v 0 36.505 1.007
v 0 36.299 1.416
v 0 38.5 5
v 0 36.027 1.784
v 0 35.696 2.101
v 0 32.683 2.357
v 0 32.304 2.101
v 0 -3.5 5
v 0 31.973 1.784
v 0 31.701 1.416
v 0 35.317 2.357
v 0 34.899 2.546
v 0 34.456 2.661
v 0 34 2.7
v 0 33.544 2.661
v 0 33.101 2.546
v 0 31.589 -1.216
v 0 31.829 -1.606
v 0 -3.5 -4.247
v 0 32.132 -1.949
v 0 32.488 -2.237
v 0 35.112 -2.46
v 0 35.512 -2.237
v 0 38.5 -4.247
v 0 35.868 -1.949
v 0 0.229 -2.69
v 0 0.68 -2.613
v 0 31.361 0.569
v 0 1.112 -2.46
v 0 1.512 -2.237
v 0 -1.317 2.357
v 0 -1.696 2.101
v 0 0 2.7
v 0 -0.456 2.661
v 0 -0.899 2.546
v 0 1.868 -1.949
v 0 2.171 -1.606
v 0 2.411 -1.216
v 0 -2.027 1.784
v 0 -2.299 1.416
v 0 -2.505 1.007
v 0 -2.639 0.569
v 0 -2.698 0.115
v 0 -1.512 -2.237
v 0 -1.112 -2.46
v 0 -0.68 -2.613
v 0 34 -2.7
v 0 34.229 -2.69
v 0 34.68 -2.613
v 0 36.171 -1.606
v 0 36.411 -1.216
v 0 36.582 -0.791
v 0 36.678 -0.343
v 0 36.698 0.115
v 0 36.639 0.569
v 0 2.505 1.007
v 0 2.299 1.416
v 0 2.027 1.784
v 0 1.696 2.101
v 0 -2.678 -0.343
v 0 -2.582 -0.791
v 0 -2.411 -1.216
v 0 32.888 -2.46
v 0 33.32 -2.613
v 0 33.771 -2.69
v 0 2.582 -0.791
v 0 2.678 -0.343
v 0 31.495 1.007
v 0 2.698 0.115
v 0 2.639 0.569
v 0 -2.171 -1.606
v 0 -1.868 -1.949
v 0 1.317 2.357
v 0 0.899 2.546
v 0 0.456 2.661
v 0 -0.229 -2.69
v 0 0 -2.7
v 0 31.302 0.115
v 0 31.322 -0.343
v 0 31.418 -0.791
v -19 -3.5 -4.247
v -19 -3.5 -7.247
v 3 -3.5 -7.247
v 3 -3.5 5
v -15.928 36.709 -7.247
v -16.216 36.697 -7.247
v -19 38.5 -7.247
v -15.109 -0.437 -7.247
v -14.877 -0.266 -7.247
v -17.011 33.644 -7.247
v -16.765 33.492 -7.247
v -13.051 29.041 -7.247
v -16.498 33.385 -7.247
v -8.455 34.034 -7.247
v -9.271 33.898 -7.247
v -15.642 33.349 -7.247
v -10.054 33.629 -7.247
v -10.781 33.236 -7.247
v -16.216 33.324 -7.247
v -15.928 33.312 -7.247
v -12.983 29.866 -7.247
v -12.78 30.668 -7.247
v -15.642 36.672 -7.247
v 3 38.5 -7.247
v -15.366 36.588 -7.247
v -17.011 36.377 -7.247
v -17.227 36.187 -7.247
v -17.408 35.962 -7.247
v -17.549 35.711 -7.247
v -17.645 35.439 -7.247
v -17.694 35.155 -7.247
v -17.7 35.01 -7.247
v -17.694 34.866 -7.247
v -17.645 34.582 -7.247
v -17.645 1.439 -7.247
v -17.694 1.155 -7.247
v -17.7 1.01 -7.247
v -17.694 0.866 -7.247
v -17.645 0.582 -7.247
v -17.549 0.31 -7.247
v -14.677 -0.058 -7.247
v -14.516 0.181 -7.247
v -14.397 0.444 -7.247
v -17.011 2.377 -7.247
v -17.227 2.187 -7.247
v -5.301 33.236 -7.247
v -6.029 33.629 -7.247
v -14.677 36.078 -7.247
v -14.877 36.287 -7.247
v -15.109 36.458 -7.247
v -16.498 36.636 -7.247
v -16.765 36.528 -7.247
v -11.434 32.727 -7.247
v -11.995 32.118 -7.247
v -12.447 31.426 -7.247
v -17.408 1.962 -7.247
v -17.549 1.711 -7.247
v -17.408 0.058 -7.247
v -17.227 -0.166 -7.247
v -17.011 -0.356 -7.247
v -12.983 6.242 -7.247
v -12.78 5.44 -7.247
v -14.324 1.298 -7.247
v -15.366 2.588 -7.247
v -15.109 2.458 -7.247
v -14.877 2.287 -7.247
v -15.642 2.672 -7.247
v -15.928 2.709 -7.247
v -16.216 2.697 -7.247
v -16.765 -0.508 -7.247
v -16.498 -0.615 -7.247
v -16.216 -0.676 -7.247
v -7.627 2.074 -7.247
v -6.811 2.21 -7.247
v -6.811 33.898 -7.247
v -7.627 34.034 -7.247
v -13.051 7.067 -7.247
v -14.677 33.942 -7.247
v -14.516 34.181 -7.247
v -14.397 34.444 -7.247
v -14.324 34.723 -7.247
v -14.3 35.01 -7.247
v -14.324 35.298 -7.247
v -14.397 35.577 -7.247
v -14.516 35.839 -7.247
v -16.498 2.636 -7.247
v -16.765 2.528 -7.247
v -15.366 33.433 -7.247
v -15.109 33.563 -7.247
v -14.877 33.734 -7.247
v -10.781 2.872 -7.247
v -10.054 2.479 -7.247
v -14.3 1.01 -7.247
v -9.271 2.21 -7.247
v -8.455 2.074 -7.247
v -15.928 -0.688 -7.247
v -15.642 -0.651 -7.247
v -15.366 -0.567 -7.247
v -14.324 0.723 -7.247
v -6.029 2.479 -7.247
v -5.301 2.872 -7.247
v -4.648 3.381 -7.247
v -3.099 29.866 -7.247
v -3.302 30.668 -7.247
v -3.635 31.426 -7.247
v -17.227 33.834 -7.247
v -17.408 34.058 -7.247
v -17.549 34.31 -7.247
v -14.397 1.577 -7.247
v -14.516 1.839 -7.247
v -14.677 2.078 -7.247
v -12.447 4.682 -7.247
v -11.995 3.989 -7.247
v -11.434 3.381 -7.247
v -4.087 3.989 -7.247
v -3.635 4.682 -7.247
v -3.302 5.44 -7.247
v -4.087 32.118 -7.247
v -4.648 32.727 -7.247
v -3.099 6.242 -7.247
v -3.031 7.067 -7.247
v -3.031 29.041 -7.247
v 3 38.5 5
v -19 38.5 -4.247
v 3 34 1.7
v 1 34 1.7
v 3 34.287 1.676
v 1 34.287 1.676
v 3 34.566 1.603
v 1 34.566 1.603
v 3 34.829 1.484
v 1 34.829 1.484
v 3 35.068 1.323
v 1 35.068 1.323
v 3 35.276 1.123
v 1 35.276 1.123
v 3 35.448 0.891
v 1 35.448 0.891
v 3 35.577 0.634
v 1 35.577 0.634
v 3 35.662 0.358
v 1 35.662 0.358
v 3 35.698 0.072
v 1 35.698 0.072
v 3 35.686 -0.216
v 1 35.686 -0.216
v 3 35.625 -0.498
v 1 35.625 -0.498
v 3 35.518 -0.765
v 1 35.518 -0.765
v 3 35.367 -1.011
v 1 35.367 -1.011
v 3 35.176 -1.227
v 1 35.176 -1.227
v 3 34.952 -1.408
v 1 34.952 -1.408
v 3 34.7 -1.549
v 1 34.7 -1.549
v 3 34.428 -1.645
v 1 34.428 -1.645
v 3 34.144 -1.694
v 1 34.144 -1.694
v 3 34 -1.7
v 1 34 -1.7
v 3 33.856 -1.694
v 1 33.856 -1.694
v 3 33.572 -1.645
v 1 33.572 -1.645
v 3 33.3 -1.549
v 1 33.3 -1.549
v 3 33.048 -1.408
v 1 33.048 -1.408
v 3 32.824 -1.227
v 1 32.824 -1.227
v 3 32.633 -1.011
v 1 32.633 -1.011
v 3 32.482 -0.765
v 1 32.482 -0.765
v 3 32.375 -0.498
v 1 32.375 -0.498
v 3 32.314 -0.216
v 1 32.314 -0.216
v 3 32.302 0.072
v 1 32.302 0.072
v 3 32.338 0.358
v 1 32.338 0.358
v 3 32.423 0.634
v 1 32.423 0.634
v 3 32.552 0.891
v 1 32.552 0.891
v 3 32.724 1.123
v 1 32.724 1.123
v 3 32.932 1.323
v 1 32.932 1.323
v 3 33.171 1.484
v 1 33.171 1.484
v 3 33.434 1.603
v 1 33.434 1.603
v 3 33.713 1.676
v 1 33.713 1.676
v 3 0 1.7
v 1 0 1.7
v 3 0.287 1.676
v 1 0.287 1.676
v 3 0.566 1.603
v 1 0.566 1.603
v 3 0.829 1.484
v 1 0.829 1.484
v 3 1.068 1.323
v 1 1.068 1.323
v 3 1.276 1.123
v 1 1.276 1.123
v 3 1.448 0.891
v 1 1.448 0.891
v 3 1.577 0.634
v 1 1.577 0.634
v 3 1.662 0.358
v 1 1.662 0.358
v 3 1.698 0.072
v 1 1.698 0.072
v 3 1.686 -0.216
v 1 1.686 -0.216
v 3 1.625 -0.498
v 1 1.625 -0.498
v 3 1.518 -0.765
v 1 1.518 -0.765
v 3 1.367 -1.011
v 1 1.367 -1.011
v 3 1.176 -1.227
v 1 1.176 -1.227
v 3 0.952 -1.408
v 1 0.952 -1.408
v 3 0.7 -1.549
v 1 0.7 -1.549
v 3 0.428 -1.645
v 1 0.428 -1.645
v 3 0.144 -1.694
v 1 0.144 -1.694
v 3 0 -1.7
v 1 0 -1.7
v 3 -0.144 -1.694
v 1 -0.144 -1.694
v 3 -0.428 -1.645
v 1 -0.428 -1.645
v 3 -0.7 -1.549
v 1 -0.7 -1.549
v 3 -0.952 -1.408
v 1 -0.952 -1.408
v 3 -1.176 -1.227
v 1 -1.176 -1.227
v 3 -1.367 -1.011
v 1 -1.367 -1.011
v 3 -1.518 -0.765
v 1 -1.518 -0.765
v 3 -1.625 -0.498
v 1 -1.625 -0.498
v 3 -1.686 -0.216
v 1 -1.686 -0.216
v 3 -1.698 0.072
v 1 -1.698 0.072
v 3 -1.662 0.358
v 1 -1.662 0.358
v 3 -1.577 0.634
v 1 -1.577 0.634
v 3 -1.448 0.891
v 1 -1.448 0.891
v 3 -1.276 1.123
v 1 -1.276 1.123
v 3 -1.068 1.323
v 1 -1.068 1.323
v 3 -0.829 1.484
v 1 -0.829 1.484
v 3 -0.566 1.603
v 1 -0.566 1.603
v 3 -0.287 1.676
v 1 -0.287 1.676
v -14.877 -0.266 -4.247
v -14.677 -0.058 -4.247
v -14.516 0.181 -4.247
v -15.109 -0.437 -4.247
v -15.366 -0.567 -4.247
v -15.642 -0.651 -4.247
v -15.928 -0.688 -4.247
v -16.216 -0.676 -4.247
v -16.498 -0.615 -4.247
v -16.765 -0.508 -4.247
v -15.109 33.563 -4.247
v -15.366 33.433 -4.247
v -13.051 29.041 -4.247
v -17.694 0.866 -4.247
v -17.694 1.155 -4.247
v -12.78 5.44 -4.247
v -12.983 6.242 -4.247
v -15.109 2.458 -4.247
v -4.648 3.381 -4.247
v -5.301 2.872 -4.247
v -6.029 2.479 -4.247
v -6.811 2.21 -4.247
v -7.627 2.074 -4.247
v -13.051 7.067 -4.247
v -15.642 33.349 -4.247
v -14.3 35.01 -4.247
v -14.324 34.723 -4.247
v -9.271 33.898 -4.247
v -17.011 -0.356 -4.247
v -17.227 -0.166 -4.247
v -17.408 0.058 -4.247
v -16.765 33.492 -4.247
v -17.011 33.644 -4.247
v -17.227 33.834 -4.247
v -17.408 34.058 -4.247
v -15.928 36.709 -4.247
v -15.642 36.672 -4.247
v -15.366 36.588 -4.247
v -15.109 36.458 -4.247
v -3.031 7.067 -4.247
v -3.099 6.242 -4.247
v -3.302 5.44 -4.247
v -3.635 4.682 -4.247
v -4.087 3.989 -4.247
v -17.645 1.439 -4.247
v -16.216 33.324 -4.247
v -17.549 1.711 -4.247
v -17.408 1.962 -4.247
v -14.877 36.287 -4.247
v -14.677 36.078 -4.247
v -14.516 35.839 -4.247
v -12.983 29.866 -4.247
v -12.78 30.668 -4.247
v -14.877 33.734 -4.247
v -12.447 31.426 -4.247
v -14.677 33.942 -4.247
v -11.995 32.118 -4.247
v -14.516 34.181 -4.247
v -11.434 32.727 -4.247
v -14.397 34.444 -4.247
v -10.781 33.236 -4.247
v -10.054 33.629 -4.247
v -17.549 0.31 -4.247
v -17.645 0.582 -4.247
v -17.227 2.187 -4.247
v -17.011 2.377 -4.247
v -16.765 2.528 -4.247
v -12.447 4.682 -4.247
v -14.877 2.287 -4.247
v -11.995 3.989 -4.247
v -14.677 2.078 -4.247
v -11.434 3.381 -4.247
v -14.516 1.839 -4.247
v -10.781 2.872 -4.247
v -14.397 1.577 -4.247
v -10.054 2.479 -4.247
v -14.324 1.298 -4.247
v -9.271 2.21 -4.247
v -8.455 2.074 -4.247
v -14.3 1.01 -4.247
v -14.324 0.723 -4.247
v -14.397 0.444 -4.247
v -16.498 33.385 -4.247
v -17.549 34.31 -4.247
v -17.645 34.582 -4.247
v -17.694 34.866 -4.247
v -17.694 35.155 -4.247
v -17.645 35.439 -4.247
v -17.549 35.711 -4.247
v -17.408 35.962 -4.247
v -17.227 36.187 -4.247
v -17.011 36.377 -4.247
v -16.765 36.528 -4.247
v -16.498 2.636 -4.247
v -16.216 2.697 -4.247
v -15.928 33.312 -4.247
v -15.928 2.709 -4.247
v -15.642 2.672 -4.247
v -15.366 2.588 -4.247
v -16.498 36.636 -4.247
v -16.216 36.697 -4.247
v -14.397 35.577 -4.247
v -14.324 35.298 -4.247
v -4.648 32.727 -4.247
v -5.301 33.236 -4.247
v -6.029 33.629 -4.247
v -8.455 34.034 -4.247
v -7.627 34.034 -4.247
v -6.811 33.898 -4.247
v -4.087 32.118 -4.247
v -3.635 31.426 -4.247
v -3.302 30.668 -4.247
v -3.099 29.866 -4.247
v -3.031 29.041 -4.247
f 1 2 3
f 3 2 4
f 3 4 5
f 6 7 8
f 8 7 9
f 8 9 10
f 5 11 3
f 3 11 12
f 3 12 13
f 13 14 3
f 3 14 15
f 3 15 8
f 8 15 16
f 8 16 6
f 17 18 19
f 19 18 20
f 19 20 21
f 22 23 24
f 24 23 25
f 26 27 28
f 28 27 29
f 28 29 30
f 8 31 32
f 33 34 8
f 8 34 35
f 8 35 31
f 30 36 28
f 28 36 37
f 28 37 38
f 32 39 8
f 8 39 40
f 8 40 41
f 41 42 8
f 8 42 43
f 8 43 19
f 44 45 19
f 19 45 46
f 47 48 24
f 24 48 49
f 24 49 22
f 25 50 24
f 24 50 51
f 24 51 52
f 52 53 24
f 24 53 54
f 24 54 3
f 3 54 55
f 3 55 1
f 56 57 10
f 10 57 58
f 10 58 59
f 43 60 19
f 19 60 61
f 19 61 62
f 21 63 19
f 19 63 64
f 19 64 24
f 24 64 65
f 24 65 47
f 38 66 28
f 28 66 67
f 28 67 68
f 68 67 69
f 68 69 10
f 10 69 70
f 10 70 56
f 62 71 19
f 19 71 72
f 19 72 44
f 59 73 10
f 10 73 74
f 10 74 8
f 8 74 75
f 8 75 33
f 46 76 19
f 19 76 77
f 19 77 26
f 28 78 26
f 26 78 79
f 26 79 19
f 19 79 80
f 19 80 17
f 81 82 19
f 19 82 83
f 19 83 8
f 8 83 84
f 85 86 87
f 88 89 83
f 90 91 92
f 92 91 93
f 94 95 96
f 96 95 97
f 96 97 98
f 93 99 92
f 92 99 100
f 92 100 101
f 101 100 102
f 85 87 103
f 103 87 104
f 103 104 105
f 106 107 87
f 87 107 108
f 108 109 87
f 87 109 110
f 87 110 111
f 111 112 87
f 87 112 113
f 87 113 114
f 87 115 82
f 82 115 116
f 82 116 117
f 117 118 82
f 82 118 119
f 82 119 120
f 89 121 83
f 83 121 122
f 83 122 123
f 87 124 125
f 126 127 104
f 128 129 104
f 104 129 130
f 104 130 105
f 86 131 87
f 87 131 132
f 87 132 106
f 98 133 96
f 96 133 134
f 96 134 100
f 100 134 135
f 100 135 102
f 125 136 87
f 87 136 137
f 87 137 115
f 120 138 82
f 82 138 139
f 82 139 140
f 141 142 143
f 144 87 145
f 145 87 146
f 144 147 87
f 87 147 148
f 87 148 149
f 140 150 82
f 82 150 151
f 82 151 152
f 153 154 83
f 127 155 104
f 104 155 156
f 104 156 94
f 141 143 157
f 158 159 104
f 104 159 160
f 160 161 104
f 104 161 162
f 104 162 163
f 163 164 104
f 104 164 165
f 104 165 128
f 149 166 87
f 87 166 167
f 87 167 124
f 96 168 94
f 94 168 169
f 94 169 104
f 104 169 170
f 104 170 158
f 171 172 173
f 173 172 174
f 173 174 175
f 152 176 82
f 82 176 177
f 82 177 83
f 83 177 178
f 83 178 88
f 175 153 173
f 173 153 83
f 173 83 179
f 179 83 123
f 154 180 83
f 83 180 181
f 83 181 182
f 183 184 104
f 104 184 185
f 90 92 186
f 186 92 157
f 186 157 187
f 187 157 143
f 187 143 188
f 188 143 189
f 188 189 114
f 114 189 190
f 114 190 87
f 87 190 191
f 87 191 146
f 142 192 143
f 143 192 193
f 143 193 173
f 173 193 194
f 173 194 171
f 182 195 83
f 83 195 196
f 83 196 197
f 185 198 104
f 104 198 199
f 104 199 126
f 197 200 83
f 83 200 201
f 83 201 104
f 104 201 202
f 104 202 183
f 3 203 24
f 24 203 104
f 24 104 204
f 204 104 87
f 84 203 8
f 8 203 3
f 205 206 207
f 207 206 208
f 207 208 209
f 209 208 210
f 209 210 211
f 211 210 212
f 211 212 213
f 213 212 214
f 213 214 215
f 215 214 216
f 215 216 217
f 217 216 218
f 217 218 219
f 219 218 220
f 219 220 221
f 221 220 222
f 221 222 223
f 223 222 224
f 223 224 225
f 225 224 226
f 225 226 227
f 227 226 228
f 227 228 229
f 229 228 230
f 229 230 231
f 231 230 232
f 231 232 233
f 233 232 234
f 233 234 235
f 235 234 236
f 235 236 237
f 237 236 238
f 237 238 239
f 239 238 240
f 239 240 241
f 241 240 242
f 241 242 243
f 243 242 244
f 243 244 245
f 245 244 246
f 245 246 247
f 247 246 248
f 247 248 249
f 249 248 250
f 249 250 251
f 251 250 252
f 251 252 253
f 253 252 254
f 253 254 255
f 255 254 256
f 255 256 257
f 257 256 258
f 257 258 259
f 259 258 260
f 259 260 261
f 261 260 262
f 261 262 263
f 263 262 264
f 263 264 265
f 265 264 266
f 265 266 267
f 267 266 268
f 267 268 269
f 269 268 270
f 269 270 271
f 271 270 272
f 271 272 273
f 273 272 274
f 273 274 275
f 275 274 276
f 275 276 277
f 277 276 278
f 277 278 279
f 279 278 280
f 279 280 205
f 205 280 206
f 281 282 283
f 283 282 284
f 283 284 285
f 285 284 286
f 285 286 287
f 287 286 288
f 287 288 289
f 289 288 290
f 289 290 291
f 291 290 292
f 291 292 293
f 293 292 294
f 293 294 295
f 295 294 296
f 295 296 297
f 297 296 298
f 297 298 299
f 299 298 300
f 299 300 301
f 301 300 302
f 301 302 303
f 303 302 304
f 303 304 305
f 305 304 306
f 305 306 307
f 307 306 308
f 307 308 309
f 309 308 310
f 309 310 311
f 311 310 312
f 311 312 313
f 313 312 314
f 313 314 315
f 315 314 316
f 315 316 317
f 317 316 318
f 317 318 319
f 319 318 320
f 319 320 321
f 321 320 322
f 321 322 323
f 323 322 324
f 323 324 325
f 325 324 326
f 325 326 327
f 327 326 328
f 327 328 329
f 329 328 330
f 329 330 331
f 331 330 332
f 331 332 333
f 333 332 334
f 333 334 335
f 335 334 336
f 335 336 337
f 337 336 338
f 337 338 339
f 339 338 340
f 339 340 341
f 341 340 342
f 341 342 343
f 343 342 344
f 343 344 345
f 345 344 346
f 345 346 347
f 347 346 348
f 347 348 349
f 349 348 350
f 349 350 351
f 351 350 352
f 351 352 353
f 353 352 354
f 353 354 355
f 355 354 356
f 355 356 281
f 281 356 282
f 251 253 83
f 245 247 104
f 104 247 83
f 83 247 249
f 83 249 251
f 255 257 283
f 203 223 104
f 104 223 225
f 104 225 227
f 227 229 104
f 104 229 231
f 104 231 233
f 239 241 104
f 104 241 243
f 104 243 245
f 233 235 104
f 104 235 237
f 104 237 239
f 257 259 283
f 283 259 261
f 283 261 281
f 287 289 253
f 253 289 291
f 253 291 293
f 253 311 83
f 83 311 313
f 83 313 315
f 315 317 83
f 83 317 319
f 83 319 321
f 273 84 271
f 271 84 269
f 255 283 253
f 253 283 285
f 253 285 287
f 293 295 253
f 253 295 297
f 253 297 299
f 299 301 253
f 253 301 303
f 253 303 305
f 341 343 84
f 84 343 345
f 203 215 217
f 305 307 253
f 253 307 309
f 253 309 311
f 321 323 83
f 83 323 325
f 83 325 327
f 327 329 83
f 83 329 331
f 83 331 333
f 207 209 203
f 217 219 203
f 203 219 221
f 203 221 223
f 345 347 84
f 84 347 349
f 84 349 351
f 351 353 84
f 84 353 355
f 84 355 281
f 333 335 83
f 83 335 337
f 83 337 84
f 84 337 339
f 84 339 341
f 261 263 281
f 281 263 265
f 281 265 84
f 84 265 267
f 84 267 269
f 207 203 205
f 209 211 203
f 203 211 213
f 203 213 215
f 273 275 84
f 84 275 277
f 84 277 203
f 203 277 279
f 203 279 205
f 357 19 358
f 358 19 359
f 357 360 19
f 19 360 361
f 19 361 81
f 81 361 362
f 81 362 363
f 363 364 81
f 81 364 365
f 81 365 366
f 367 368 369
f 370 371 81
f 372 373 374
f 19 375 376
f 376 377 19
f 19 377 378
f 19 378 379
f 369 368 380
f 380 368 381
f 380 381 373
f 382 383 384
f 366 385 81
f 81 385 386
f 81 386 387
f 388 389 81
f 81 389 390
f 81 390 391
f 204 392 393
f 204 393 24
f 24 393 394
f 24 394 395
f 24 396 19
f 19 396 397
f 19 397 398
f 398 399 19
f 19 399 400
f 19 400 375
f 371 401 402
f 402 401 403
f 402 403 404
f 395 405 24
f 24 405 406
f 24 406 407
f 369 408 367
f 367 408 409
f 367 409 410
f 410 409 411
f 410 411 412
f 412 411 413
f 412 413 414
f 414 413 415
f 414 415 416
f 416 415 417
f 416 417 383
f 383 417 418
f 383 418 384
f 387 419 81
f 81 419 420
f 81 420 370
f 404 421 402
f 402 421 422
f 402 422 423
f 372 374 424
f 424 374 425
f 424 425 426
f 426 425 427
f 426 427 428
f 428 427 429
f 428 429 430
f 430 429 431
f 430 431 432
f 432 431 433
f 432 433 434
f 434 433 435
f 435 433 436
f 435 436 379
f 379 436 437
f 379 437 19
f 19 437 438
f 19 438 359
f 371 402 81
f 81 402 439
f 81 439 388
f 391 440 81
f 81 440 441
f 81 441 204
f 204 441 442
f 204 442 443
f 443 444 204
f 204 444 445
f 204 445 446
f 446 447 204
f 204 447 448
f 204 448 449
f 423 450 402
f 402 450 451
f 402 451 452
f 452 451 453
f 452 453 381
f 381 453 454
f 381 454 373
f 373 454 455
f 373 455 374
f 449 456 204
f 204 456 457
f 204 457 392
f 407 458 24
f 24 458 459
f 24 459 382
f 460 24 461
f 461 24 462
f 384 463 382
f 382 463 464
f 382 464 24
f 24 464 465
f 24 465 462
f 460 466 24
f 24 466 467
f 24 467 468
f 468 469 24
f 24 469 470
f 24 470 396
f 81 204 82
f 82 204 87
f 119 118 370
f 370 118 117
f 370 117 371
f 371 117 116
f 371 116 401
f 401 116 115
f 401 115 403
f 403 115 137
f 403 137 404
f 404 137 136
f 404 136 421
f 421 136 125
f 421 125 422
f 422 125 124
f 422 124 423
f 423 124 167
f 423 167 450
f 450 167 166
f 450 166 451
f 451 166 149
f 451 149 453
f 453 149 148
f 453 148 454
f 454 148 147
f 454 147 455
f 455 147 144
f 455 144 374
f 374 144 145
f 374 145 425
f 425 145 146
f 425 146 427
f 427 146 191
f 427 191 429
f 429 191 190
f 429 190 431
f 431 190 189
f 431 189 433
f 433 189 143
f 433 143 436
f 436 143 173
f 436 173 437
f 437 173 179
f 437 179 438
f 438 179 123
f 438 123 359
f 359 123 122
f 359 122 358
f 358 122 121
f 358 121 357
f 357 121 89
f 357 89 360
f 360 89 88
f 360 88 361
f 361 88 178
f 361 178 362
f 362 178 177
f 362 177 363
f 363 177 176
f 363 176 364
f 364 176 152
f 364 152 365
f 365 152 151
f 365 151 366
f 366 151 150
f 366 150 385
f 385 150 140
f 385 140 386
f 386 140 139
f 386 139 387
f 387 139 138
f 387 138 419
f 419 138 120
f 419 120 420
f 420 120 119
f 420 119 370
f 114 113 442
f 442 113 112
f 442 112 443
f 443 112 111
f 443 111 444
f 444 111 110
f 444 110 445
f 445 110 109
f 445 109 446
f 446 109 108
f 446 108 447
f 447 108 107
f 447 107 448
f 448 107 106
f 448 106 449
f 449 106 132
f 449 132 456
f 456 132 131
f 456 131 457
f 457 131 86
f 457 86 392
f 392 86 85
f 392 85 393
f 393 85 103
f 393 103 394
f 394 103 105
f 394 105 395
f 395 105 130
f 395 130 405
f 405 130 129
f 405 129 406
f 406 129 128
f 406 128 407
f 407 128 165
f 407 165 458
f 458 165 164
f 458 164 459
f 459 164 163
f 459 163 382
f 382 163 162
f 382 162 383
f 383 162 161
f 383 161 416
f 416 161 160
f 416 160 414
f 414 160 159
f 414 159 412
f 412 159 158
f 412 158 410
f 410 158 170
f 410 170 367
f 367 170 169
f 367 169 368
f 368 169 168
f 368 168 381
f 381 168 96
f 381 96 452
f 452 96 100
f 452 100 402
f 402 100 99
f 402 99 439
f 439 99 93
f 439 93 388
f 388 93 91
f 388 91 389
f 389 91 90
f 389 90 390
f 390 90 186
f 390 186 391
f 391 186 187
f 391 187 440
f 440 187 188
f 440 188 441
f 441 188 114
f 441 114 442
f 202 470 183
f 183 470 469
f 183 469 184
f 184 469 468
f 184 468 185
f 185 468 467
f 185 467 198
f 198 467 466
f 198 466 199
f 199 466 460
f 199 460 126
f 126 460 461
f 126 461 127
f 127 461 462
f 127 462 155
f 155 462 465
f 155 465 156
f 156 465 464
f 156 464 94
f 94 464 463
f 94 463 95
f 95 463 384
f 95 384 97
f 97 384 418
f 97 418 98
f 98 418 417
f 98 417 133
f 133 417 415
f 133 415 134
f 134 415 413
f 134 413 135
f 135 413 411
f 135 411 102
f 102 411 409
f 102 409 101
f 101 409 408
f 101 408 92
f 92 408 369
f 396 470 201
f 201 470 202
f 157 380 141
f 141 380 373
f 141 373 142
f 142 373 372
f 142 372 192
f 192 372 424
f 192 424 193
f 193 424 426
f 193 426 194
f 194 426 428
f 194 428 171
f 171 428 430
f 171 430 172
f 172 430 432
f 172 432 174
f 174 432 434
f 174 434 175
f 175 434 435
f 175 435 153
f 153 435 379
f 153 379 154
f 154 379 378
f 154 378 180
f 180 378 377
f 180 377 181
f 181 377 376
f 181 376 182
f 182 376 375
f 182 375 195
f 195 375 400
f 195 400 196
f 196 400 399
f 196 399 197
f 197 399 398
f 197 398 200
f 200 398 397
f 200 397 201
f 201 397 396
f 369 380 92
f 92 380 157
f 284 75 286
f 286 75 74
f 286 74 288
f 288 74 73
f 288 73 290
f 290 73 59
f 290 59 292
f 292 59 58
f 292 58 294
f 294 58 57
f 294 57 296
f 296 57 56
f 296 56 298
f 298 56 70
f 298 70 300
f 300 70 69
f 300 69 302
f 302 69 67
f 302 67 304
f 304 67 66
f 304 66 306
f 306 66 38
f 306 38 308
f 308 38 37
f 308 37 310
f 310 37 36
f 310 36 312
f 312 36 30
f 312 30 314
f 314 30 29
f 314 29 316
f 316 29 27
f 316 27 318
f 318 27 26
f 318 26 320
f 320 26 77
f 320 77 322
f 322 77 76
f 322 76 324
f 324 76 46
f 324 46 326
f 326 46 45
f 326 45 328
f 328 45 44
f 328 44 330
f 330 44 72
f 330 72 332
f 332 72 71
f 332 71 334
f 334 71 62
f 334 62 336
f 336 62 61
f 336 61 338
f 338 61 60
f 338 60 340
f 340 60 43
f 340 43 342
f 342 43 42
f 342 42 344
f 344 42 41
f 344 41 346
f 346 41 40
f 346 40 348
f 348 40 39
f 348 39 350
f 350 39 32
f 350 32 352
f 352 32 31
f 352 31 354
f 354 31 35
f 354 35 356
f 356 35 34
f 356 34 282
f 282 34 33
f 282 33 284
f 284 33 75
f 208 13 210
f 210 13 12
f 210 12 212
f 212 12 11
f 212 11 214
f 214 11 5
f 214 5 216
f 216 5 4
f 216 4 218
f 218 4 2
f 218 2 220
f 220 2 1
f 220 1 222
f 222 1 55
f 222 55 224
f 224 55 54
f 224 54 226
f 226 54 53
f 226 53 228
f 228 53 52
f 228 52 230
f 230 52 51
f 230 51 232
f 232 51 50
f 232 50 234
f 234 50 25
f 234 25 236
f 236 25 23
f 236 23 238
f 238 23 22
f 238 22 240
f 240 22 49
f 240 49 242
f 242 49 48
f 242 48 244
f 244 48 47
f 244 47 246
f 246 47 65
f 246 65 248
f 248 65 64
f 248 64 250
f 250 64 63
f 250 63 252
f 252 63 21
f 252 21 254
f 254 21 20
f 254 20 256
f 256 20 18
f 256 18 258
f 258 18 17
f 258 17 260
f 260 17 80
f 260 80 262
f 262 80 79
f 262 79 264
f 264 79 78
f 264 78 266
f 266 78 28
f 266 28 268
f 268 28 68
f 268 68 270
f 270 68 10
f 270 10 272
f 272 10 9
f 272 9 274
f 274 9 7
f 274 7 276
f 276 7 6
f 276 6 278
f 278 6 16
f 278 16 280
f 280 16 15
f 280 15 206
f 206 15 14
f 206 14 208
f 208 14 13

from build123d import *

# Parameters (mm, degrees)
SKETCH_1_R          = 1.7
EXTRUDE_2_DEPTH     = 3
SKETCH_2_W          = 3
SKETCH_2_H          = 42
EXTRUDE_3_DEPTH     = 19
SKETCH_3_R          = 1.7
CUT_EXTRUDE_1_DEPTH = 5
CUT_EXTRUDE_2_DEPTH = 5
CHAMFER_1_SIZE      = 1


with BuildPart() as part:
    # Эскиз1 → Бобышка-Вытянуть2 (new body)
    with BuildSketch(Plane(origin=(0, 0, 0), x_dir=(0, 0, -1), z_dir=(1, 0, 0))):
        Polygon((0, 38.5), (-5, 38.5), (-5, -3.5), (7.246656809, -3.5), (7.246656809, 38.5), align=None)
        Circle(SKETCH_1_R, mode=Mode.SUBTRACT)
        with BuildLine():
            ThreePointArc((0, 32.3), (-1.7, 34), (0, 35.7))
            ThreePointArc((0, 35.7), (1.7, 34), (0, 32.3))
        make_face(mode=Mode.SUBTRACT)
    extrude(amount=EXTRUDE_2_DEPTH)

    # Эскиз2 → Бобышка-Вытянуть3 (add)
    with BuildSketch(Plane.ZY):
        with Locations((-5.746656809, 17.5)):
            Rectangle(SKETCH_2_W, SKETCH_2_H)
    extrude(amount=EXTRUDE_3_DEPTH)

    # Эскиз3 → Вырез-Вытянуть1 (cut)
    with BuildSketch(Plane.XY.offset(-4.246656809)):
        with Locations((-16, 35.010378706)):
            Circle(SKETCH_3_R)
        with Locations((-16, 1.010378706)):
            Circle(SKETCH_3_R)
    extrude(amount=-CUT_EXTRUDE_1_DEPTH, mode=Mode.SUBTRACT)

    # Эскиз4 → Вырез-Вытянуть2 (cut)
    with BuildSketch(Plane.XY.offset(-4.246656809)):
        with BuildLine():
            Line((-3.030961954, 29.041213722), (-3.030961954, 7.066639766))
            ThreePointArc((-3.030961954, 7.066639766), (-8.041074018, 2.056527703), (-13.051186081, 7.066639766))
            Line((-13.051186081, 7.066639766), (-13.051186081, 29.041213722))
            ThreePointArc((-13.051186081, 29.041213722), (-8.041074018, 34.051325785), (-3.030961954, 29.041213722))
        make_face()
    extrude(amount=-CUT_EXTRUDE_2_DEPTH, mode=Mode.SUBTRACT)

    # Фаска1
    chamfer_1_edges = [part.edges().sort_by_distance(p)[0] for p in [
        (0, 35.7, 0),
        (0, 0, 1.7),
    ]]
    chamfer(chamfer_1_edges, length=CHAMFER_1_SIZE)


solid = part.part
